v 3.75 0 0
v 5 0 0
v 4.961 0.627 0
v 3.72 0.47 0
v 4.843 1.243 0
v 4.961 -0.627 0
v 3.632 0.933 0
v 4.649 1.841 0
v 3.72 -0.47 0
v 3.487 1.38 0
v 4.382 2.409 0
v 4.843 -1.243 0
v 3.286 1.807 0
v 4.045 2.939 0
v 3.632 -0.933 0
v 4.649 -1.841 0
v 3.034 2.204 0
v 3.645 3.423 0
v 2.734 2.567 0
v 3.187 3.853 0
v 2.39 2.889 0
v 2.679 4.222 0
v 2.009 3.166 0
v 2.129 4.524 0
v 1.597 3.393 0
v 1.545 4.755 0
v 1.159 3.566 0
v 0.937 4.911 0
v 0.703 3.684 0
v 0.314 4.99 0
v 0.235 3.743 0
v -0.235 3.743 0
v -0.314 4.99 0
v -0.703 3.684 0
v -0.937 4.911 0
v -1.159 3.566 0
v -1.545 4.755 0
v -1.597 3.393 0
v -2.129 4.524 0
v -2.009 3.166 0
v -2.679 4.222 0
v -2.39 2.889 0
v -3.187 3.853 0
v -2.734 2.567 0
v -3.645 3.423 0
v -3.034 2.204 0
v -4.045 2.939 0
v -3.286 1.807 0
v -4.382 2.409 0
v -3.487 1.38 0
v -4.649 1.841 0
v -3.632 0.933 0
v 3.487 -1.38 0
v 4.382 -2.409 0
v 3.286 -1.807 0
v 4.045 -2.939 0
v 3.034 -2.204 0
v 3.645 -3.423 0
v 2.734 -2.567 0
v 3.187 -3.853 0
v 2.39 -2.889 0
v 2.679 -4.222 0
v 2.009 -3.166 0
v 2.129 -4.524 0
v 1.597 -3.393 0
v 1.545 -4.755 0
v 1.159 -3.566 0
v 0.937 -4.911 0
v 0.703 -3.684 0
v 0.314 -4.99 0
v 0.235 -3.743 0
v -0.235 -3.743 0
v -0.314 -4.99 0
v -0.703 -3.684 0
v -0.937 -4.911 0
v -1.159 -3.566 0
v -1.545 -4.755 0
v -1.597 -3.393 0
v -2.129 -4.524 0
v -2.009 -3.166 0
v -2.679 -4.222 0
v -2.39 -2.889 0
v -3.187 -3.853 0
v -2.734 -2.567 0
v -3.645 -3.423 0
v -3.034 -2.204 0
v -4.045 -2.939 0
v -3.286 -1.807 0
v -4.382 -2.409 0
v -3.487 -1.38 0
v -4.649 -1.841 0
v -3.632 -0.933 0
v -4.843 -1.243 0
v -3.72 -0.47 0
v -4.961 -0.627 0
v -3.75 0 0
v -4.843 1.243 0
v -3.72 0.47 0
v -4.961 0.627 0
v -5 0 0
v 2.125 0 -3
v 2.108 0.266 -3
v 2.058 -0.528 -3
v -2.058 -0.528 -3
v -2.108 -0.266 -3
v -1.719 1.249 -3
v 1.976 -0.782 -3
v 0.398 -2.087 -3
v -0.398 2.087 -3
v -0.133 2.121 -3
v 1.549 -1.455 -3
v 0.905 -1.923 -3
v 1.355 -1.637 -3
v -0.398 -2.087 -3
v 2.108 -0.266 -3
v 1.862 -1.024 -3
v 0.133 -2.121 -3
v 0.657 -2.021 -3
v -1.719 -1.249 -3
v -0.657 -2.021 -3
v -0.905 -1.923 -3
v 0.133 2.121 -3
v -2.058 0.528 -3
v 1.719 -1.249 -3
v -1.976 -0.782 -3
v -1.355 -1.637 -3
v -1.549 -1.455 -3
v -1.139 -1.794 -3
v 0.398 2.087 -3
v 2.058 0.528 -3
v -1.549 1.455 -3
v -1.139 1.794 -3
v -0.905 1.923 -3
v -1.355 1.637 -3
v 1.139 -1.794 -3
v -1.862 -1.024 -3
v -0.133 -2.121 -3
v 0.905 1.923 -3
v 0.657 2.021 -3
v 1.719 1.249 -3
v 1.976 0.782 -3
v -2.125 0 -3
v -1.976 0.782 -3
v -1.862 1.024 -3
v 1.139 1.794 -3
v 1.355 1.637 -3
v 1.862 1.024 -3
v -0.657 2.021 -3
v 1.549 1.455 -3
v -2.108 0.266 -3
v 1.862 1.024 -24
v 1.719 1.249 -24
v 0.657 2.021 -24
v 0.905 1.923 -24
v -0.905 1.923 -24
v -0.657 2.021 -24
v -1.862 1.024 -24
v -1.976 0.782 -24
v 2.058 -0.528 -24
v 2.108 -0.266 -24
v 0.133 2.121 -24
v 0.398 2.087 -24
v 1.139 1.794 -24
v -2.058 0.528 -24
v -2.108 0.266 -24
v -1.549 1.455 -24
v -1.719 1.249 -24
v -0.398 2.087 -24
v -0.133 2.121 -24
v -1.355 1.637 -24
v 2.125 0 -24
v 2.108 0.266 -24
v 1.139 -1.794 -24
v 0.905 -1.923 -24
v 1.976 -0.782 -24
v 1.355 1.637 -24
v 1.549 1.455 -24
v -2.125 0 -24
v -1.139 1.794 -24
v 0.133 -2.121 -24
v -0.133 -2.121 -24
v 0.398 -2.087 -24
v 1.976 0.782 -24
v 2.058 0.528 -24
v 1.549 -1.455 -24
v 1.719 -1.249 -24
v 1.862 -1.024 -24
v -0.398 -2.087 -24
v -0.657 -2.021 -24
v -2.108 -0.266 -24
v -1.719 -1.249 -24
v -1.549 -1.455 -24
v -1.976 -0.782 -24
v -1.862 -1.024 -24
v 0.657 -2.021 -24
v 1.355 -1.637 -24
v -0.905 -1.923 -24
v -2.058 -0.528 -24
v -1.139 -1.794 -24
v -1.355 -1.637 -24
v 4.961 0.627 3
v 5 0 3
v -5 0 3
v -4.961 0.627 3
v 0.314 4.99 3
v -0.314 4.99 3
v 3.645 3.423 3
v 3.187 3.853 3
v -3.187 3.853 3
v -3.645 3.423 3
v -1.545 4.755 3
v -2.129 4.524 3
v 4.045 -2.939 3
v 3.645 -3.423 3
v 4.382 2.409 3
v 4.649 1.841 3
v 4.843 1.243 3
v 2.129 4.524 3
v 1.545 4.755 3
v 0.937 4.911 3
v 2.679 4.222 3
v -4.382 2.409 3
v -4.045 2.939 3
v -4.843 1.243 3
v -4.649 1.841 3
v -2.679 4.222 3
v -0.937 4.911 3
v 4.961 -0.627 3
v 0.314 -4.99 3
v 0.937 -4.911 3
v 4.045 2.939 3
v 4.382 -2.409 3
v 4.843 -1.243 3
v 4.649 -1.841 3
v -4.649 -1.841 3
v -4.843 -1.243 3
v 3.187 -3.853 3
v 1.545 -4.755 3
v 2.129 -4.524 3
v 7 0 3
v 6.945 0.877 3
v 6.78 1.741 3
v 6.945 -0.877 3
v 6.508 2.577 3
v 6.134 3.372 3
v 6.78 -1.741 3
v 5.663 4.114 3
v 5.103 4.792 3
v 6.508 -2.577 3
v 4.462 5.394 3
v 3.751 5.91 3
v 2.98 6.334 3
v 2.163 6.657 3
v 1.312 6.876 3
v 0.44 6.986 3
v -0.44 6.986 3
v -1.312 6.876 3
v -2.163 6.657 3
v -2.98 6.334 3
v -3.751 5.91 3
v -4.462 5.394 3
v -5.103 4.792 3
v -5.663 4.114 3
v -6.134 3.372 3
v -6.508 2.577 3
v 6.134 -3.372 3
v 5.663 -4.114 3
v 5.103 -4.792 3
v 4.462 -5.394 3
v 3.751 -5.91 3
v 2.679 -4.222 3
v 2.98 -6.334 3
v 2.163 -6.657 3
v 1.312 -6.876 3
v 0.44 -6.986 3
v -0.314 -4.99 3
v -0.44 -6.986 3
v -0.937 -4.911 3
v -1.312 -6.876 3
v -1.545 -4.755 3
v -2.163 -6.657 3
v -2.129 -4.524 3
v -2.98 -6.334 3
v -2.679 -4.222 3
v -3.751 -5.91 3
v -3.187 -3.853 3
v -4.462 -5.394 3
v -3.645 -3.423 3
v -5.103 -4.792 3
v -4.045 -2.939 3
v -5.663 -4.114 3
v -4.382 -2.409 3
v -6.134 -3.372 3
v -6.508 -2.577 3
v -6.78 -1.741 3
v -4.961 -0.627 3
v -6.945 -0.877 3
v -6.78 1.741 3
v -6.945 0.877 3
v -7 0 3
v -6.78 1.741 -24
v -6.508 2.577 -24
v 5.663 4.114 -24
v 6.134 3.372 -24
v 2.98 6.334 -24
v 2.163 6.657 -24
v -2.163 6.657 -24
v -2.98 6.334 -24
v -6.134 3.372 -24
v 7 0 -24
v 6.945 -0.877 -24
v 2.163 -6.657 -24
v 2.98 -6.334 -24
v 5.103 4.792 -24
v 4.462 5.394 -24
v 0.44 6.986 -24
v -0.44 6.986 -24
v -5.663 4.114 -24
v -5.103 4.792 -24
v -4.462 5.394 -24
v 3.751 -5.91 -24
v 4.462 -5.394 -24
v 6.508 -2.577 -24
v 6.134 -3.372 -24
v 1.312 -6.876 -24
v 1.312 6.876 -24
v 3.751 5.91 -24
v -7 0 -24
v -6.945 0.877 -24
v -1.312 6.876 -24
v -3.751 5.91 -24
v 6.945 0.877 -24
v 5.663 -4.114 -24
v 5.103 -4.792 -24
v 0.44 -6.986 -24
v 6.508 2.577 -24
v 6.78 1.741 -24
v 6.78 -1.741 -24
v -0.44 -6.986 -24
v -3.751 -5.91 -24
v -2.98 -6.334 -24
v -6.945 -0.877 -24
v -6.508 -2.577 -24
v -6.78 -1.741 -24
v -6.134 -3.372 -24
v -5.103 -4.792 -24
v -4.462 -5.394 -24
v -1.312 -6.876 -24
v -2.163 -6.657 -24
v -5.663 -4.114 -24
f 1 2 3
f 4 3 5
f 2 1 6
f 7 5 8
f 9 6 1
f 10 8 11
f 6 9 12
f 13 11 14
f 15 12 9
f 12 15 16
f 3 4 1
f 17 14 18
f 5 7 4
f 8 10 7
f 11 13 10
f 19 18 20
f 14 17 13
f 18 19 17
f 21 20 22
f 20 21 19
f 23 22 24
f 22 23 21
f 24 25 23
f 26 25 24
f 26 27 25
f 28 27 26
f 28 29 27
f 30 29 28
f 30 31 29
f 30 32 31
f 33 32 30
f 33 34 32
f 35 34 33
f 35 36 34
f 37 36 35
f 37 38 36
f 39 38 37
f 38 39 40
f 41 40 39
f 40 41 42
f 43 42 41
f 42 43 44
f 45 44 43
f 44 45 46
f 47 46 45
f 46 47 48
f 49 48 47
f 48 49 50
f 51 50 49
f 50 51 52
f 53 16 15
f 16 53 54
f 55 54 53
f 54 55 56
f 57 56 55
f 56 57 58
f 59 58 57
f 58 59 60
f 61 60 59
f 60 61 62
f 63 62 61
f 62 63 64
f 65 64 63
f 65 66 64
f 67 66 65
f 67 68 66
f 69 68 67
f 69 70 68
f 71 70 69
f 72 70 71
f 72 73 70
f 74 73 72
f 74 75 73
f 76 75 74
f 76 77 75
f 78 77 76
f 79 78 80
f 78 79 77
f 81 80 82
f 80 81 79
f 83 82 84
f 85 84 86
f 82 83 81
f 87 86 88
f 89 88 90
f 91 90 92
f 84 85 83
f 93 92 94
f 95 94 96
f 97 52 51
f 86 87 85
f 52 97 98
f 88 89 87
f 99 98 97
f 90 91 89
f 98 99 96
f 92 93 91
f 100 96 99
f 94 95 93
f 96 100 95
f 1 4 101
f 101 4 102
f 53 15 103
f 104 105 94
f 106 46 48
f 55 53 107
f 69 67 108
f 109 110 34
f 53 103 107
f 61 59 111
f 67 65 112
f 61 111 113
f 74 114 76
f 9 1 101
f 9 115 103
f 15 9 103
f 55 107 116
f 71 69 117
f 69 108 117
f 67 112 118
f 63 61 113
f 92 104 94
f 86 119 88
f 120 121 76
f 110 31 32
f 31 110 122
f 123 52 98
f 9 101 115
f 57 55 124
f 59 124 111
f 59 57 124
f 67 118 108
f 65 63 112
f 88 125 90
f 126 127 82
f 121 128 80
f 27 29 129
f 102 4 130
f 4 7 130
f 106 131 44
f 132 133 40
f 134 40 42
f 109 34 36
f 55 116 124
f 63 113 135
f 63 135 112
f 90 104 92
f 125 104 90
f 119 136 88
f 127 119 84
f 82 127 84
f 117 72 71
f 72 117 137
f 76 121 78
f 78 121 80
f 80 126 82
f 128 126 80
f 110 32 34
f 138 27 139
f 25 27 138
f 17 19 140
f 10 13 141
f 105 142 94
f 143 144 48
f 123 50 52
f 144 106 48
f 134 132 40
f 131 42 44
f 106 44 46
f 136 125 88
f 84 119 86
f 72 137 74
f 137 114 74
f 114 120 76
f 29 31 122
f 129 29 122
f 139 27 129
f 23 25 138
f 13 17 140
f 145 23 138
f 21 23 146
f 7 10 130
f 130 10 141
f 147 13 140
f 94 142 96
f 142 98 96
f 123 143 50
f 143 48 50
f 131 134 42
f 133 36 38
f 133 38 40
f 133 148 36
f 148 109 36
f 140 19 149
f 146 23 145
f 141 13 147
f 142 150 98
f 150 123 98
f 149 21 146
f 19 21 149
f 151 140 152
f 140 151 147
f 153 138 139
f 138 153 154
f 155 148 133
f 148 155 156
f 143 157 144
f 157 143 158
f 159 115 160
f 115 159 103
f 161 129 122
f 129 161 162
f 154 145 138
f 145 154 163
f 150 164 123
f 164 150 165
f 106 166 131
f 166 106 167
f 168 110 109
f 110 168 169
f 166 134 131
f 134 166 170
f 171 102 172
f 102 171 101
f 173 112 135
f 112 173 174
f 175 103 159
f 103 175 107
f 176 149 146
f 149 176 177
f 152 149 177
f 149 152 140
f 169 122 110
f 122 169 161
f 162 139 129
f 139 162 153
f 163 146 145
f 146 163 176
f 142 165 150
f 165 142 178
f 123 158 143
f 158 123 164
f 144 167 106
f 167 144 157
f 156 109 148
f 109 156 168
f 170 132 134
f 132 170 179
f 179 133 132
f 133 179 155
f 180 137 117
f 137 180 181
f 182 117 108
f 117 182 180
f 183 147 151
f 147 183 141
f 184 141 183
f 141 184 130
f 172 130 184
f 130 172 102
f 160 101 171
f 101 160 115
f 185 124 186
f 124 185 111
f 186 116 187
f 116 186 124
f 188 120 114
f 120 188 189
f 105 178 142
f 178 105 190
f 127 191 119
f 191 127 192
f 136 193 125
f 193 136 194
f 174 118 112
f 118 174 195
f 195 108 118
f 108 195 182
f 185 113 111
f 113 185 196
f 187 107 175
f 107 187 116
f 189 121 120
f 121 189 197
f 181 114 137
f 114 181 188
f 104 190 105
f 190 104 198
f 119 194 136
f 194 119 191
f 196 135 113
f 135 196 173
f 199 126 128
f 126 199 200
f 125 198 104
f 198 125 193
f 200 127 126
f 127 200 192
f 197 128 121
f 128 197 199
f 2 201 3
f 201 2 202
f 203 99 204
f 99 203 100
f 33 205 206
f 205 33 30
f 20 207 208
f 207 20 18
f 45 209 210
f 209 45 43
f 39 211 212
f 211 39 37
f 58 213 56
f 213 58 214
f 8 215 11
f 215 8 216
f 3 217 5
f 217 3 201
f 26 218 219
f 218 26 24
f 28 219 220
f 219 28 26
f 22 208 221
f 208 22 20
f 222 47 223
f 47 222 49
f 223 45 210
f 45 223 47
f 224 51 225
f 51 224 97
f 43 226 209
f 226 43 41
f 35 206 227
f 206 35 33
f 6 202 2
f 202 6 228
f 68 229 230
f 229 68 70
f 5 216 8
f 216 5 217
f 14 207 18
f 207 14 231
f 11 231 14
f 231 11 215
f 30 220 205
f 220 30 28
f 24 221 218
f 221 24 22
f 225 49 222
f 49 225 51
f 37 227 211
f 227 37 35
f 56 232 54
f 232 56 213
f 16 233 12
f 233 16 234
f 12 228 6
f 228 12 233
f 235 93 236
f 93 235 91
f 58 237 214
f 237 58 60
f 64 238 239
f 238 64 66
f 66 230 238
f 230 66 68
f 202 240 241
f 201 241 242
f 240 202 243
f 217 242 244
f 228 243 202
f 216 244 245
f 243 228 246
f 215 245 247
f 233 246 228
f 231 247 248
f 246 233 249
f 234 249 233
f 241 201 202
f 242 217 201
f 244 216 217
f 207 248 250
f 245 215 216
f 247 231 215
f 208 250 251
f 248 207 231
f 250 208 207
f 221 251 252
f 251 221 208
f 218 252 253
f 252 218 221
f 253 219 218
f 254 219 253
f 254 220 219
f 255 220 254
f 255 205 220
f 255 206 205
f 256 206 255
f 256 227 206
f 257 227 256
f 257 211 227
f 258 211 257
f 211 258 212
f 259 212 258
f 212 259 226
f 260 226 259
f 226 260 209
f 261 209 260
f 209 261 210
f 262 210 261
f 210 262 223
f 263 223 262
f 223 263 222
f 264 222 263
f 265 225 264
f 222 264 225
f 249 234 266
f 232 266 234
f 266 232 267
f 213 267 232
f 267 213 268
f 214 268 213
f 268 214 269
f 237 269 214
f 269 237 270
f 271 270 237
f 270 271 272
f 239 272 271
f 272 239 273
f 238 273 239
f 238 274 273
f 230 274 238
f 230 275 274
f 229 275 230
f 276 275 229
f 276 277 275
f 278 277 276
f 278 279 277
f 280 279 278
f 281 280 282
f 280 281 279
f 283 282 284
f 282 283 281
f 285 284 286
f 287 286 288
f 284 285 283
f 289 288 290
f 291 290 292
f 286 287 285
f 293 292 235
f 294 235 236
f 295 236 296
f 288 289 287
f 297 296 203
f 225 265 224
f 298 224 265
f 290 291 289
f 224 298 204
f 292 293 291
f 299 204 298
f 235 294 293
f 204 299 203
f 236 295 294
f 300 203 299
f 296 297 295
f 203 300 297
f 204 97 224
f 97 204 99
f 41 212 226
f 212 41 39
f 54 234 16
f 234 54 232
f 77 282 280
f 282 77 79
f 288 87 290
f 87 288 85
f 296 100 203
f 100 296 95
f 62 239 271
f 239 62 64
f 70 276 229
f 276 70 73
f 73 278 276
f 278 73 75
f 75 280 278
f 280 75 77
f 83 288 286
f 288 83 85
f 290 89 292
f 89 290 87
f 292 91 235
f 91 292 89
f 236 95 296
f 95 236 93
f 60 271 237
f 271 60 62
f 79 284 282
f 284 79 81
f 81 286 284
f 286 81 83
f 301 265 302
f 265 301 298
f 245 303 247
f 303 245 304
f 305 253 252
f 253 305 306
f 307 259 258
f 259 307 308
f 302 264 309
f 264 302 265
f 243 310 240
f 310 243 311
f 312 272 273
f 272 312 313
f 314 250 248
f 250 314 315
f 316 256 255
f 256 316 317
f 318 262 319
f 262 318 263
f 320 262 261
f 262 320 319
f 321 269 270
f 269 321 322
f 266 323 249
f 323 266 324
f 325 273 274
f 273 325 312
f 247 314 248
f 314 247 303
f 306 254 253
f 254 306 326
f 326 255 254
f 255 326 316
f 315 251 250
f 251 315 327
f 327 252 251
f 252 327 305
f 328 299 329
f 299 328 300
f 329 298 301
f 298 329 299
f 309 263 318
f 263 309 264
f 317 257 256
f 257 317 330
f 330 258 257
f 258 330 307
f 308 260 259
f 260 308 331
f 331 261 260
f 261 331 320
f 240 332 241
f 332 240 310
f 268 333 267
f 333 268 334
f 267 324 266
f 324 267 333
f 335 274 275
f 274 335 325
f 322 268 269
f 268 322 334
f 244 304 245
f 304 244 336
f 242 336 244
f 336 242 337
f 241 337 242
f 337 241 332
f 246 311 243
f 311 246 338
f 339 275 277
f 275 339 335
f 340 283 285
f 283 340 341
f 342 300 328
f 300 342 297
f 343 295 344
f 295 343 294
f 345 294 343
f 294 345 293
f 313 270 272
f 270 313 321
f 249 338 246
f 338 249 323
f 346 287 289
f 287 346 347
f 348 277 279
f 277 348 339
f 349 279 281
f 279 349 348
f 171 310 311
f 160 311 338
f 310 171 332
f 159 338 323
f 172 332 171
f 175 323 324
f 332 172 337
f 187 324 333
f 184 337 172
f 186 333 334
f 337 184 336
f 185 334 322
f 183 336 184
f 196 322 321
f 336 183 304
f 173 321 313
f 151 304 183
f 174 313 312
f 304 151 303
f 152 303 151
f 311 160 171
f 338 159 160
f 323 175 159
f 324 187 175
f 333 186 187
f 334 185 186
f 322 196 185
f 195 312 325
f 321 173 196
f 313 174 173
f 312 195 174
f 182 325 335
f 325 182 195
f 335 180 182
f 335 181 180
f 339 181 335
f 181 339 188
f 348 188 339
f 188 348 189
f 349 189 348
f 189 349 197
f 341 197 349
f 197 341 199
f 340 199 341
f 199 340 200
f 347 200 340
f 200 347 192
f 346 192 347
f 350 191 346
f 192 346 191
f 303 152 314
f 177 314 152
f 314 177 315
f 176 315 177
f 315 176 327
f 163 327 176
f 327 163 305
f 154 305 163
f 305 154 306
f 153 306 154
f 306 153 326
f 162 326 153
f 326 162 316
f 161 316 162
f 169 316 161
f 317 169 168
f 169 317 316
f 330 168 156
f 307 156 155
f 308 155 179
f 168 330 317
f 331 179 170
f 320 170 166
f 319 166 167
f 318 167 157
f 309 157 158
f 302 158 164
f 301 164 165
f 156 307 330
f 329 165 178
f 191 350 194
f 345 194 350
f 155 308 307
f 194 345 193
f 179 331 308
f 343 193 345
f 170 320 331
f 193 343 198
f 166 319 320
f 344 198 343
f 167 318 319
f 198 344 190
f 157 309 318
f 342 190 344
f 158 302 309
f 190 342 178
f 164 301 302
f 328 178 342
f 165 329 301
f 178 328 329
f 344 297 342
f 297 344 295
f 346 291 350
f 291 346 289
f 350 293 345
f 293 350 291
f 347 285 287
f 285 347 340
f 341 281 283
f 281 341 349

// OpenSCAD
$fn = 50;

difference() {
	union() {
		translate(v = [0, 0, -24.0]) {
			cylinder(h = 27, r = 7.0);
		}
	}
	union() {
		translate(v = [0, 0, 0]) {
			rotate(a = [0, 0, 0]) {
				difference() {
					union() {
						translate(v = [0, 0, -27.0]) {
							cylinder(h = 27, r = 2.0);
						}
						translate(v = [0, 0, -3]) {
							cylinder(h = 3, r1 = 2.125, r2 = 3.75);
						}
						translate(v = [0, 0, -27.0]) {
							cylinder(h = 27, r = 2.125);
						}
						translate(v = [0, 0, -27.0]) {
							cylinder(h = 27, r = 2.0);
						}
					}
					union();
				}
			}
		}
		#cylinder(h = 3, r = 5.0);
	}
}
